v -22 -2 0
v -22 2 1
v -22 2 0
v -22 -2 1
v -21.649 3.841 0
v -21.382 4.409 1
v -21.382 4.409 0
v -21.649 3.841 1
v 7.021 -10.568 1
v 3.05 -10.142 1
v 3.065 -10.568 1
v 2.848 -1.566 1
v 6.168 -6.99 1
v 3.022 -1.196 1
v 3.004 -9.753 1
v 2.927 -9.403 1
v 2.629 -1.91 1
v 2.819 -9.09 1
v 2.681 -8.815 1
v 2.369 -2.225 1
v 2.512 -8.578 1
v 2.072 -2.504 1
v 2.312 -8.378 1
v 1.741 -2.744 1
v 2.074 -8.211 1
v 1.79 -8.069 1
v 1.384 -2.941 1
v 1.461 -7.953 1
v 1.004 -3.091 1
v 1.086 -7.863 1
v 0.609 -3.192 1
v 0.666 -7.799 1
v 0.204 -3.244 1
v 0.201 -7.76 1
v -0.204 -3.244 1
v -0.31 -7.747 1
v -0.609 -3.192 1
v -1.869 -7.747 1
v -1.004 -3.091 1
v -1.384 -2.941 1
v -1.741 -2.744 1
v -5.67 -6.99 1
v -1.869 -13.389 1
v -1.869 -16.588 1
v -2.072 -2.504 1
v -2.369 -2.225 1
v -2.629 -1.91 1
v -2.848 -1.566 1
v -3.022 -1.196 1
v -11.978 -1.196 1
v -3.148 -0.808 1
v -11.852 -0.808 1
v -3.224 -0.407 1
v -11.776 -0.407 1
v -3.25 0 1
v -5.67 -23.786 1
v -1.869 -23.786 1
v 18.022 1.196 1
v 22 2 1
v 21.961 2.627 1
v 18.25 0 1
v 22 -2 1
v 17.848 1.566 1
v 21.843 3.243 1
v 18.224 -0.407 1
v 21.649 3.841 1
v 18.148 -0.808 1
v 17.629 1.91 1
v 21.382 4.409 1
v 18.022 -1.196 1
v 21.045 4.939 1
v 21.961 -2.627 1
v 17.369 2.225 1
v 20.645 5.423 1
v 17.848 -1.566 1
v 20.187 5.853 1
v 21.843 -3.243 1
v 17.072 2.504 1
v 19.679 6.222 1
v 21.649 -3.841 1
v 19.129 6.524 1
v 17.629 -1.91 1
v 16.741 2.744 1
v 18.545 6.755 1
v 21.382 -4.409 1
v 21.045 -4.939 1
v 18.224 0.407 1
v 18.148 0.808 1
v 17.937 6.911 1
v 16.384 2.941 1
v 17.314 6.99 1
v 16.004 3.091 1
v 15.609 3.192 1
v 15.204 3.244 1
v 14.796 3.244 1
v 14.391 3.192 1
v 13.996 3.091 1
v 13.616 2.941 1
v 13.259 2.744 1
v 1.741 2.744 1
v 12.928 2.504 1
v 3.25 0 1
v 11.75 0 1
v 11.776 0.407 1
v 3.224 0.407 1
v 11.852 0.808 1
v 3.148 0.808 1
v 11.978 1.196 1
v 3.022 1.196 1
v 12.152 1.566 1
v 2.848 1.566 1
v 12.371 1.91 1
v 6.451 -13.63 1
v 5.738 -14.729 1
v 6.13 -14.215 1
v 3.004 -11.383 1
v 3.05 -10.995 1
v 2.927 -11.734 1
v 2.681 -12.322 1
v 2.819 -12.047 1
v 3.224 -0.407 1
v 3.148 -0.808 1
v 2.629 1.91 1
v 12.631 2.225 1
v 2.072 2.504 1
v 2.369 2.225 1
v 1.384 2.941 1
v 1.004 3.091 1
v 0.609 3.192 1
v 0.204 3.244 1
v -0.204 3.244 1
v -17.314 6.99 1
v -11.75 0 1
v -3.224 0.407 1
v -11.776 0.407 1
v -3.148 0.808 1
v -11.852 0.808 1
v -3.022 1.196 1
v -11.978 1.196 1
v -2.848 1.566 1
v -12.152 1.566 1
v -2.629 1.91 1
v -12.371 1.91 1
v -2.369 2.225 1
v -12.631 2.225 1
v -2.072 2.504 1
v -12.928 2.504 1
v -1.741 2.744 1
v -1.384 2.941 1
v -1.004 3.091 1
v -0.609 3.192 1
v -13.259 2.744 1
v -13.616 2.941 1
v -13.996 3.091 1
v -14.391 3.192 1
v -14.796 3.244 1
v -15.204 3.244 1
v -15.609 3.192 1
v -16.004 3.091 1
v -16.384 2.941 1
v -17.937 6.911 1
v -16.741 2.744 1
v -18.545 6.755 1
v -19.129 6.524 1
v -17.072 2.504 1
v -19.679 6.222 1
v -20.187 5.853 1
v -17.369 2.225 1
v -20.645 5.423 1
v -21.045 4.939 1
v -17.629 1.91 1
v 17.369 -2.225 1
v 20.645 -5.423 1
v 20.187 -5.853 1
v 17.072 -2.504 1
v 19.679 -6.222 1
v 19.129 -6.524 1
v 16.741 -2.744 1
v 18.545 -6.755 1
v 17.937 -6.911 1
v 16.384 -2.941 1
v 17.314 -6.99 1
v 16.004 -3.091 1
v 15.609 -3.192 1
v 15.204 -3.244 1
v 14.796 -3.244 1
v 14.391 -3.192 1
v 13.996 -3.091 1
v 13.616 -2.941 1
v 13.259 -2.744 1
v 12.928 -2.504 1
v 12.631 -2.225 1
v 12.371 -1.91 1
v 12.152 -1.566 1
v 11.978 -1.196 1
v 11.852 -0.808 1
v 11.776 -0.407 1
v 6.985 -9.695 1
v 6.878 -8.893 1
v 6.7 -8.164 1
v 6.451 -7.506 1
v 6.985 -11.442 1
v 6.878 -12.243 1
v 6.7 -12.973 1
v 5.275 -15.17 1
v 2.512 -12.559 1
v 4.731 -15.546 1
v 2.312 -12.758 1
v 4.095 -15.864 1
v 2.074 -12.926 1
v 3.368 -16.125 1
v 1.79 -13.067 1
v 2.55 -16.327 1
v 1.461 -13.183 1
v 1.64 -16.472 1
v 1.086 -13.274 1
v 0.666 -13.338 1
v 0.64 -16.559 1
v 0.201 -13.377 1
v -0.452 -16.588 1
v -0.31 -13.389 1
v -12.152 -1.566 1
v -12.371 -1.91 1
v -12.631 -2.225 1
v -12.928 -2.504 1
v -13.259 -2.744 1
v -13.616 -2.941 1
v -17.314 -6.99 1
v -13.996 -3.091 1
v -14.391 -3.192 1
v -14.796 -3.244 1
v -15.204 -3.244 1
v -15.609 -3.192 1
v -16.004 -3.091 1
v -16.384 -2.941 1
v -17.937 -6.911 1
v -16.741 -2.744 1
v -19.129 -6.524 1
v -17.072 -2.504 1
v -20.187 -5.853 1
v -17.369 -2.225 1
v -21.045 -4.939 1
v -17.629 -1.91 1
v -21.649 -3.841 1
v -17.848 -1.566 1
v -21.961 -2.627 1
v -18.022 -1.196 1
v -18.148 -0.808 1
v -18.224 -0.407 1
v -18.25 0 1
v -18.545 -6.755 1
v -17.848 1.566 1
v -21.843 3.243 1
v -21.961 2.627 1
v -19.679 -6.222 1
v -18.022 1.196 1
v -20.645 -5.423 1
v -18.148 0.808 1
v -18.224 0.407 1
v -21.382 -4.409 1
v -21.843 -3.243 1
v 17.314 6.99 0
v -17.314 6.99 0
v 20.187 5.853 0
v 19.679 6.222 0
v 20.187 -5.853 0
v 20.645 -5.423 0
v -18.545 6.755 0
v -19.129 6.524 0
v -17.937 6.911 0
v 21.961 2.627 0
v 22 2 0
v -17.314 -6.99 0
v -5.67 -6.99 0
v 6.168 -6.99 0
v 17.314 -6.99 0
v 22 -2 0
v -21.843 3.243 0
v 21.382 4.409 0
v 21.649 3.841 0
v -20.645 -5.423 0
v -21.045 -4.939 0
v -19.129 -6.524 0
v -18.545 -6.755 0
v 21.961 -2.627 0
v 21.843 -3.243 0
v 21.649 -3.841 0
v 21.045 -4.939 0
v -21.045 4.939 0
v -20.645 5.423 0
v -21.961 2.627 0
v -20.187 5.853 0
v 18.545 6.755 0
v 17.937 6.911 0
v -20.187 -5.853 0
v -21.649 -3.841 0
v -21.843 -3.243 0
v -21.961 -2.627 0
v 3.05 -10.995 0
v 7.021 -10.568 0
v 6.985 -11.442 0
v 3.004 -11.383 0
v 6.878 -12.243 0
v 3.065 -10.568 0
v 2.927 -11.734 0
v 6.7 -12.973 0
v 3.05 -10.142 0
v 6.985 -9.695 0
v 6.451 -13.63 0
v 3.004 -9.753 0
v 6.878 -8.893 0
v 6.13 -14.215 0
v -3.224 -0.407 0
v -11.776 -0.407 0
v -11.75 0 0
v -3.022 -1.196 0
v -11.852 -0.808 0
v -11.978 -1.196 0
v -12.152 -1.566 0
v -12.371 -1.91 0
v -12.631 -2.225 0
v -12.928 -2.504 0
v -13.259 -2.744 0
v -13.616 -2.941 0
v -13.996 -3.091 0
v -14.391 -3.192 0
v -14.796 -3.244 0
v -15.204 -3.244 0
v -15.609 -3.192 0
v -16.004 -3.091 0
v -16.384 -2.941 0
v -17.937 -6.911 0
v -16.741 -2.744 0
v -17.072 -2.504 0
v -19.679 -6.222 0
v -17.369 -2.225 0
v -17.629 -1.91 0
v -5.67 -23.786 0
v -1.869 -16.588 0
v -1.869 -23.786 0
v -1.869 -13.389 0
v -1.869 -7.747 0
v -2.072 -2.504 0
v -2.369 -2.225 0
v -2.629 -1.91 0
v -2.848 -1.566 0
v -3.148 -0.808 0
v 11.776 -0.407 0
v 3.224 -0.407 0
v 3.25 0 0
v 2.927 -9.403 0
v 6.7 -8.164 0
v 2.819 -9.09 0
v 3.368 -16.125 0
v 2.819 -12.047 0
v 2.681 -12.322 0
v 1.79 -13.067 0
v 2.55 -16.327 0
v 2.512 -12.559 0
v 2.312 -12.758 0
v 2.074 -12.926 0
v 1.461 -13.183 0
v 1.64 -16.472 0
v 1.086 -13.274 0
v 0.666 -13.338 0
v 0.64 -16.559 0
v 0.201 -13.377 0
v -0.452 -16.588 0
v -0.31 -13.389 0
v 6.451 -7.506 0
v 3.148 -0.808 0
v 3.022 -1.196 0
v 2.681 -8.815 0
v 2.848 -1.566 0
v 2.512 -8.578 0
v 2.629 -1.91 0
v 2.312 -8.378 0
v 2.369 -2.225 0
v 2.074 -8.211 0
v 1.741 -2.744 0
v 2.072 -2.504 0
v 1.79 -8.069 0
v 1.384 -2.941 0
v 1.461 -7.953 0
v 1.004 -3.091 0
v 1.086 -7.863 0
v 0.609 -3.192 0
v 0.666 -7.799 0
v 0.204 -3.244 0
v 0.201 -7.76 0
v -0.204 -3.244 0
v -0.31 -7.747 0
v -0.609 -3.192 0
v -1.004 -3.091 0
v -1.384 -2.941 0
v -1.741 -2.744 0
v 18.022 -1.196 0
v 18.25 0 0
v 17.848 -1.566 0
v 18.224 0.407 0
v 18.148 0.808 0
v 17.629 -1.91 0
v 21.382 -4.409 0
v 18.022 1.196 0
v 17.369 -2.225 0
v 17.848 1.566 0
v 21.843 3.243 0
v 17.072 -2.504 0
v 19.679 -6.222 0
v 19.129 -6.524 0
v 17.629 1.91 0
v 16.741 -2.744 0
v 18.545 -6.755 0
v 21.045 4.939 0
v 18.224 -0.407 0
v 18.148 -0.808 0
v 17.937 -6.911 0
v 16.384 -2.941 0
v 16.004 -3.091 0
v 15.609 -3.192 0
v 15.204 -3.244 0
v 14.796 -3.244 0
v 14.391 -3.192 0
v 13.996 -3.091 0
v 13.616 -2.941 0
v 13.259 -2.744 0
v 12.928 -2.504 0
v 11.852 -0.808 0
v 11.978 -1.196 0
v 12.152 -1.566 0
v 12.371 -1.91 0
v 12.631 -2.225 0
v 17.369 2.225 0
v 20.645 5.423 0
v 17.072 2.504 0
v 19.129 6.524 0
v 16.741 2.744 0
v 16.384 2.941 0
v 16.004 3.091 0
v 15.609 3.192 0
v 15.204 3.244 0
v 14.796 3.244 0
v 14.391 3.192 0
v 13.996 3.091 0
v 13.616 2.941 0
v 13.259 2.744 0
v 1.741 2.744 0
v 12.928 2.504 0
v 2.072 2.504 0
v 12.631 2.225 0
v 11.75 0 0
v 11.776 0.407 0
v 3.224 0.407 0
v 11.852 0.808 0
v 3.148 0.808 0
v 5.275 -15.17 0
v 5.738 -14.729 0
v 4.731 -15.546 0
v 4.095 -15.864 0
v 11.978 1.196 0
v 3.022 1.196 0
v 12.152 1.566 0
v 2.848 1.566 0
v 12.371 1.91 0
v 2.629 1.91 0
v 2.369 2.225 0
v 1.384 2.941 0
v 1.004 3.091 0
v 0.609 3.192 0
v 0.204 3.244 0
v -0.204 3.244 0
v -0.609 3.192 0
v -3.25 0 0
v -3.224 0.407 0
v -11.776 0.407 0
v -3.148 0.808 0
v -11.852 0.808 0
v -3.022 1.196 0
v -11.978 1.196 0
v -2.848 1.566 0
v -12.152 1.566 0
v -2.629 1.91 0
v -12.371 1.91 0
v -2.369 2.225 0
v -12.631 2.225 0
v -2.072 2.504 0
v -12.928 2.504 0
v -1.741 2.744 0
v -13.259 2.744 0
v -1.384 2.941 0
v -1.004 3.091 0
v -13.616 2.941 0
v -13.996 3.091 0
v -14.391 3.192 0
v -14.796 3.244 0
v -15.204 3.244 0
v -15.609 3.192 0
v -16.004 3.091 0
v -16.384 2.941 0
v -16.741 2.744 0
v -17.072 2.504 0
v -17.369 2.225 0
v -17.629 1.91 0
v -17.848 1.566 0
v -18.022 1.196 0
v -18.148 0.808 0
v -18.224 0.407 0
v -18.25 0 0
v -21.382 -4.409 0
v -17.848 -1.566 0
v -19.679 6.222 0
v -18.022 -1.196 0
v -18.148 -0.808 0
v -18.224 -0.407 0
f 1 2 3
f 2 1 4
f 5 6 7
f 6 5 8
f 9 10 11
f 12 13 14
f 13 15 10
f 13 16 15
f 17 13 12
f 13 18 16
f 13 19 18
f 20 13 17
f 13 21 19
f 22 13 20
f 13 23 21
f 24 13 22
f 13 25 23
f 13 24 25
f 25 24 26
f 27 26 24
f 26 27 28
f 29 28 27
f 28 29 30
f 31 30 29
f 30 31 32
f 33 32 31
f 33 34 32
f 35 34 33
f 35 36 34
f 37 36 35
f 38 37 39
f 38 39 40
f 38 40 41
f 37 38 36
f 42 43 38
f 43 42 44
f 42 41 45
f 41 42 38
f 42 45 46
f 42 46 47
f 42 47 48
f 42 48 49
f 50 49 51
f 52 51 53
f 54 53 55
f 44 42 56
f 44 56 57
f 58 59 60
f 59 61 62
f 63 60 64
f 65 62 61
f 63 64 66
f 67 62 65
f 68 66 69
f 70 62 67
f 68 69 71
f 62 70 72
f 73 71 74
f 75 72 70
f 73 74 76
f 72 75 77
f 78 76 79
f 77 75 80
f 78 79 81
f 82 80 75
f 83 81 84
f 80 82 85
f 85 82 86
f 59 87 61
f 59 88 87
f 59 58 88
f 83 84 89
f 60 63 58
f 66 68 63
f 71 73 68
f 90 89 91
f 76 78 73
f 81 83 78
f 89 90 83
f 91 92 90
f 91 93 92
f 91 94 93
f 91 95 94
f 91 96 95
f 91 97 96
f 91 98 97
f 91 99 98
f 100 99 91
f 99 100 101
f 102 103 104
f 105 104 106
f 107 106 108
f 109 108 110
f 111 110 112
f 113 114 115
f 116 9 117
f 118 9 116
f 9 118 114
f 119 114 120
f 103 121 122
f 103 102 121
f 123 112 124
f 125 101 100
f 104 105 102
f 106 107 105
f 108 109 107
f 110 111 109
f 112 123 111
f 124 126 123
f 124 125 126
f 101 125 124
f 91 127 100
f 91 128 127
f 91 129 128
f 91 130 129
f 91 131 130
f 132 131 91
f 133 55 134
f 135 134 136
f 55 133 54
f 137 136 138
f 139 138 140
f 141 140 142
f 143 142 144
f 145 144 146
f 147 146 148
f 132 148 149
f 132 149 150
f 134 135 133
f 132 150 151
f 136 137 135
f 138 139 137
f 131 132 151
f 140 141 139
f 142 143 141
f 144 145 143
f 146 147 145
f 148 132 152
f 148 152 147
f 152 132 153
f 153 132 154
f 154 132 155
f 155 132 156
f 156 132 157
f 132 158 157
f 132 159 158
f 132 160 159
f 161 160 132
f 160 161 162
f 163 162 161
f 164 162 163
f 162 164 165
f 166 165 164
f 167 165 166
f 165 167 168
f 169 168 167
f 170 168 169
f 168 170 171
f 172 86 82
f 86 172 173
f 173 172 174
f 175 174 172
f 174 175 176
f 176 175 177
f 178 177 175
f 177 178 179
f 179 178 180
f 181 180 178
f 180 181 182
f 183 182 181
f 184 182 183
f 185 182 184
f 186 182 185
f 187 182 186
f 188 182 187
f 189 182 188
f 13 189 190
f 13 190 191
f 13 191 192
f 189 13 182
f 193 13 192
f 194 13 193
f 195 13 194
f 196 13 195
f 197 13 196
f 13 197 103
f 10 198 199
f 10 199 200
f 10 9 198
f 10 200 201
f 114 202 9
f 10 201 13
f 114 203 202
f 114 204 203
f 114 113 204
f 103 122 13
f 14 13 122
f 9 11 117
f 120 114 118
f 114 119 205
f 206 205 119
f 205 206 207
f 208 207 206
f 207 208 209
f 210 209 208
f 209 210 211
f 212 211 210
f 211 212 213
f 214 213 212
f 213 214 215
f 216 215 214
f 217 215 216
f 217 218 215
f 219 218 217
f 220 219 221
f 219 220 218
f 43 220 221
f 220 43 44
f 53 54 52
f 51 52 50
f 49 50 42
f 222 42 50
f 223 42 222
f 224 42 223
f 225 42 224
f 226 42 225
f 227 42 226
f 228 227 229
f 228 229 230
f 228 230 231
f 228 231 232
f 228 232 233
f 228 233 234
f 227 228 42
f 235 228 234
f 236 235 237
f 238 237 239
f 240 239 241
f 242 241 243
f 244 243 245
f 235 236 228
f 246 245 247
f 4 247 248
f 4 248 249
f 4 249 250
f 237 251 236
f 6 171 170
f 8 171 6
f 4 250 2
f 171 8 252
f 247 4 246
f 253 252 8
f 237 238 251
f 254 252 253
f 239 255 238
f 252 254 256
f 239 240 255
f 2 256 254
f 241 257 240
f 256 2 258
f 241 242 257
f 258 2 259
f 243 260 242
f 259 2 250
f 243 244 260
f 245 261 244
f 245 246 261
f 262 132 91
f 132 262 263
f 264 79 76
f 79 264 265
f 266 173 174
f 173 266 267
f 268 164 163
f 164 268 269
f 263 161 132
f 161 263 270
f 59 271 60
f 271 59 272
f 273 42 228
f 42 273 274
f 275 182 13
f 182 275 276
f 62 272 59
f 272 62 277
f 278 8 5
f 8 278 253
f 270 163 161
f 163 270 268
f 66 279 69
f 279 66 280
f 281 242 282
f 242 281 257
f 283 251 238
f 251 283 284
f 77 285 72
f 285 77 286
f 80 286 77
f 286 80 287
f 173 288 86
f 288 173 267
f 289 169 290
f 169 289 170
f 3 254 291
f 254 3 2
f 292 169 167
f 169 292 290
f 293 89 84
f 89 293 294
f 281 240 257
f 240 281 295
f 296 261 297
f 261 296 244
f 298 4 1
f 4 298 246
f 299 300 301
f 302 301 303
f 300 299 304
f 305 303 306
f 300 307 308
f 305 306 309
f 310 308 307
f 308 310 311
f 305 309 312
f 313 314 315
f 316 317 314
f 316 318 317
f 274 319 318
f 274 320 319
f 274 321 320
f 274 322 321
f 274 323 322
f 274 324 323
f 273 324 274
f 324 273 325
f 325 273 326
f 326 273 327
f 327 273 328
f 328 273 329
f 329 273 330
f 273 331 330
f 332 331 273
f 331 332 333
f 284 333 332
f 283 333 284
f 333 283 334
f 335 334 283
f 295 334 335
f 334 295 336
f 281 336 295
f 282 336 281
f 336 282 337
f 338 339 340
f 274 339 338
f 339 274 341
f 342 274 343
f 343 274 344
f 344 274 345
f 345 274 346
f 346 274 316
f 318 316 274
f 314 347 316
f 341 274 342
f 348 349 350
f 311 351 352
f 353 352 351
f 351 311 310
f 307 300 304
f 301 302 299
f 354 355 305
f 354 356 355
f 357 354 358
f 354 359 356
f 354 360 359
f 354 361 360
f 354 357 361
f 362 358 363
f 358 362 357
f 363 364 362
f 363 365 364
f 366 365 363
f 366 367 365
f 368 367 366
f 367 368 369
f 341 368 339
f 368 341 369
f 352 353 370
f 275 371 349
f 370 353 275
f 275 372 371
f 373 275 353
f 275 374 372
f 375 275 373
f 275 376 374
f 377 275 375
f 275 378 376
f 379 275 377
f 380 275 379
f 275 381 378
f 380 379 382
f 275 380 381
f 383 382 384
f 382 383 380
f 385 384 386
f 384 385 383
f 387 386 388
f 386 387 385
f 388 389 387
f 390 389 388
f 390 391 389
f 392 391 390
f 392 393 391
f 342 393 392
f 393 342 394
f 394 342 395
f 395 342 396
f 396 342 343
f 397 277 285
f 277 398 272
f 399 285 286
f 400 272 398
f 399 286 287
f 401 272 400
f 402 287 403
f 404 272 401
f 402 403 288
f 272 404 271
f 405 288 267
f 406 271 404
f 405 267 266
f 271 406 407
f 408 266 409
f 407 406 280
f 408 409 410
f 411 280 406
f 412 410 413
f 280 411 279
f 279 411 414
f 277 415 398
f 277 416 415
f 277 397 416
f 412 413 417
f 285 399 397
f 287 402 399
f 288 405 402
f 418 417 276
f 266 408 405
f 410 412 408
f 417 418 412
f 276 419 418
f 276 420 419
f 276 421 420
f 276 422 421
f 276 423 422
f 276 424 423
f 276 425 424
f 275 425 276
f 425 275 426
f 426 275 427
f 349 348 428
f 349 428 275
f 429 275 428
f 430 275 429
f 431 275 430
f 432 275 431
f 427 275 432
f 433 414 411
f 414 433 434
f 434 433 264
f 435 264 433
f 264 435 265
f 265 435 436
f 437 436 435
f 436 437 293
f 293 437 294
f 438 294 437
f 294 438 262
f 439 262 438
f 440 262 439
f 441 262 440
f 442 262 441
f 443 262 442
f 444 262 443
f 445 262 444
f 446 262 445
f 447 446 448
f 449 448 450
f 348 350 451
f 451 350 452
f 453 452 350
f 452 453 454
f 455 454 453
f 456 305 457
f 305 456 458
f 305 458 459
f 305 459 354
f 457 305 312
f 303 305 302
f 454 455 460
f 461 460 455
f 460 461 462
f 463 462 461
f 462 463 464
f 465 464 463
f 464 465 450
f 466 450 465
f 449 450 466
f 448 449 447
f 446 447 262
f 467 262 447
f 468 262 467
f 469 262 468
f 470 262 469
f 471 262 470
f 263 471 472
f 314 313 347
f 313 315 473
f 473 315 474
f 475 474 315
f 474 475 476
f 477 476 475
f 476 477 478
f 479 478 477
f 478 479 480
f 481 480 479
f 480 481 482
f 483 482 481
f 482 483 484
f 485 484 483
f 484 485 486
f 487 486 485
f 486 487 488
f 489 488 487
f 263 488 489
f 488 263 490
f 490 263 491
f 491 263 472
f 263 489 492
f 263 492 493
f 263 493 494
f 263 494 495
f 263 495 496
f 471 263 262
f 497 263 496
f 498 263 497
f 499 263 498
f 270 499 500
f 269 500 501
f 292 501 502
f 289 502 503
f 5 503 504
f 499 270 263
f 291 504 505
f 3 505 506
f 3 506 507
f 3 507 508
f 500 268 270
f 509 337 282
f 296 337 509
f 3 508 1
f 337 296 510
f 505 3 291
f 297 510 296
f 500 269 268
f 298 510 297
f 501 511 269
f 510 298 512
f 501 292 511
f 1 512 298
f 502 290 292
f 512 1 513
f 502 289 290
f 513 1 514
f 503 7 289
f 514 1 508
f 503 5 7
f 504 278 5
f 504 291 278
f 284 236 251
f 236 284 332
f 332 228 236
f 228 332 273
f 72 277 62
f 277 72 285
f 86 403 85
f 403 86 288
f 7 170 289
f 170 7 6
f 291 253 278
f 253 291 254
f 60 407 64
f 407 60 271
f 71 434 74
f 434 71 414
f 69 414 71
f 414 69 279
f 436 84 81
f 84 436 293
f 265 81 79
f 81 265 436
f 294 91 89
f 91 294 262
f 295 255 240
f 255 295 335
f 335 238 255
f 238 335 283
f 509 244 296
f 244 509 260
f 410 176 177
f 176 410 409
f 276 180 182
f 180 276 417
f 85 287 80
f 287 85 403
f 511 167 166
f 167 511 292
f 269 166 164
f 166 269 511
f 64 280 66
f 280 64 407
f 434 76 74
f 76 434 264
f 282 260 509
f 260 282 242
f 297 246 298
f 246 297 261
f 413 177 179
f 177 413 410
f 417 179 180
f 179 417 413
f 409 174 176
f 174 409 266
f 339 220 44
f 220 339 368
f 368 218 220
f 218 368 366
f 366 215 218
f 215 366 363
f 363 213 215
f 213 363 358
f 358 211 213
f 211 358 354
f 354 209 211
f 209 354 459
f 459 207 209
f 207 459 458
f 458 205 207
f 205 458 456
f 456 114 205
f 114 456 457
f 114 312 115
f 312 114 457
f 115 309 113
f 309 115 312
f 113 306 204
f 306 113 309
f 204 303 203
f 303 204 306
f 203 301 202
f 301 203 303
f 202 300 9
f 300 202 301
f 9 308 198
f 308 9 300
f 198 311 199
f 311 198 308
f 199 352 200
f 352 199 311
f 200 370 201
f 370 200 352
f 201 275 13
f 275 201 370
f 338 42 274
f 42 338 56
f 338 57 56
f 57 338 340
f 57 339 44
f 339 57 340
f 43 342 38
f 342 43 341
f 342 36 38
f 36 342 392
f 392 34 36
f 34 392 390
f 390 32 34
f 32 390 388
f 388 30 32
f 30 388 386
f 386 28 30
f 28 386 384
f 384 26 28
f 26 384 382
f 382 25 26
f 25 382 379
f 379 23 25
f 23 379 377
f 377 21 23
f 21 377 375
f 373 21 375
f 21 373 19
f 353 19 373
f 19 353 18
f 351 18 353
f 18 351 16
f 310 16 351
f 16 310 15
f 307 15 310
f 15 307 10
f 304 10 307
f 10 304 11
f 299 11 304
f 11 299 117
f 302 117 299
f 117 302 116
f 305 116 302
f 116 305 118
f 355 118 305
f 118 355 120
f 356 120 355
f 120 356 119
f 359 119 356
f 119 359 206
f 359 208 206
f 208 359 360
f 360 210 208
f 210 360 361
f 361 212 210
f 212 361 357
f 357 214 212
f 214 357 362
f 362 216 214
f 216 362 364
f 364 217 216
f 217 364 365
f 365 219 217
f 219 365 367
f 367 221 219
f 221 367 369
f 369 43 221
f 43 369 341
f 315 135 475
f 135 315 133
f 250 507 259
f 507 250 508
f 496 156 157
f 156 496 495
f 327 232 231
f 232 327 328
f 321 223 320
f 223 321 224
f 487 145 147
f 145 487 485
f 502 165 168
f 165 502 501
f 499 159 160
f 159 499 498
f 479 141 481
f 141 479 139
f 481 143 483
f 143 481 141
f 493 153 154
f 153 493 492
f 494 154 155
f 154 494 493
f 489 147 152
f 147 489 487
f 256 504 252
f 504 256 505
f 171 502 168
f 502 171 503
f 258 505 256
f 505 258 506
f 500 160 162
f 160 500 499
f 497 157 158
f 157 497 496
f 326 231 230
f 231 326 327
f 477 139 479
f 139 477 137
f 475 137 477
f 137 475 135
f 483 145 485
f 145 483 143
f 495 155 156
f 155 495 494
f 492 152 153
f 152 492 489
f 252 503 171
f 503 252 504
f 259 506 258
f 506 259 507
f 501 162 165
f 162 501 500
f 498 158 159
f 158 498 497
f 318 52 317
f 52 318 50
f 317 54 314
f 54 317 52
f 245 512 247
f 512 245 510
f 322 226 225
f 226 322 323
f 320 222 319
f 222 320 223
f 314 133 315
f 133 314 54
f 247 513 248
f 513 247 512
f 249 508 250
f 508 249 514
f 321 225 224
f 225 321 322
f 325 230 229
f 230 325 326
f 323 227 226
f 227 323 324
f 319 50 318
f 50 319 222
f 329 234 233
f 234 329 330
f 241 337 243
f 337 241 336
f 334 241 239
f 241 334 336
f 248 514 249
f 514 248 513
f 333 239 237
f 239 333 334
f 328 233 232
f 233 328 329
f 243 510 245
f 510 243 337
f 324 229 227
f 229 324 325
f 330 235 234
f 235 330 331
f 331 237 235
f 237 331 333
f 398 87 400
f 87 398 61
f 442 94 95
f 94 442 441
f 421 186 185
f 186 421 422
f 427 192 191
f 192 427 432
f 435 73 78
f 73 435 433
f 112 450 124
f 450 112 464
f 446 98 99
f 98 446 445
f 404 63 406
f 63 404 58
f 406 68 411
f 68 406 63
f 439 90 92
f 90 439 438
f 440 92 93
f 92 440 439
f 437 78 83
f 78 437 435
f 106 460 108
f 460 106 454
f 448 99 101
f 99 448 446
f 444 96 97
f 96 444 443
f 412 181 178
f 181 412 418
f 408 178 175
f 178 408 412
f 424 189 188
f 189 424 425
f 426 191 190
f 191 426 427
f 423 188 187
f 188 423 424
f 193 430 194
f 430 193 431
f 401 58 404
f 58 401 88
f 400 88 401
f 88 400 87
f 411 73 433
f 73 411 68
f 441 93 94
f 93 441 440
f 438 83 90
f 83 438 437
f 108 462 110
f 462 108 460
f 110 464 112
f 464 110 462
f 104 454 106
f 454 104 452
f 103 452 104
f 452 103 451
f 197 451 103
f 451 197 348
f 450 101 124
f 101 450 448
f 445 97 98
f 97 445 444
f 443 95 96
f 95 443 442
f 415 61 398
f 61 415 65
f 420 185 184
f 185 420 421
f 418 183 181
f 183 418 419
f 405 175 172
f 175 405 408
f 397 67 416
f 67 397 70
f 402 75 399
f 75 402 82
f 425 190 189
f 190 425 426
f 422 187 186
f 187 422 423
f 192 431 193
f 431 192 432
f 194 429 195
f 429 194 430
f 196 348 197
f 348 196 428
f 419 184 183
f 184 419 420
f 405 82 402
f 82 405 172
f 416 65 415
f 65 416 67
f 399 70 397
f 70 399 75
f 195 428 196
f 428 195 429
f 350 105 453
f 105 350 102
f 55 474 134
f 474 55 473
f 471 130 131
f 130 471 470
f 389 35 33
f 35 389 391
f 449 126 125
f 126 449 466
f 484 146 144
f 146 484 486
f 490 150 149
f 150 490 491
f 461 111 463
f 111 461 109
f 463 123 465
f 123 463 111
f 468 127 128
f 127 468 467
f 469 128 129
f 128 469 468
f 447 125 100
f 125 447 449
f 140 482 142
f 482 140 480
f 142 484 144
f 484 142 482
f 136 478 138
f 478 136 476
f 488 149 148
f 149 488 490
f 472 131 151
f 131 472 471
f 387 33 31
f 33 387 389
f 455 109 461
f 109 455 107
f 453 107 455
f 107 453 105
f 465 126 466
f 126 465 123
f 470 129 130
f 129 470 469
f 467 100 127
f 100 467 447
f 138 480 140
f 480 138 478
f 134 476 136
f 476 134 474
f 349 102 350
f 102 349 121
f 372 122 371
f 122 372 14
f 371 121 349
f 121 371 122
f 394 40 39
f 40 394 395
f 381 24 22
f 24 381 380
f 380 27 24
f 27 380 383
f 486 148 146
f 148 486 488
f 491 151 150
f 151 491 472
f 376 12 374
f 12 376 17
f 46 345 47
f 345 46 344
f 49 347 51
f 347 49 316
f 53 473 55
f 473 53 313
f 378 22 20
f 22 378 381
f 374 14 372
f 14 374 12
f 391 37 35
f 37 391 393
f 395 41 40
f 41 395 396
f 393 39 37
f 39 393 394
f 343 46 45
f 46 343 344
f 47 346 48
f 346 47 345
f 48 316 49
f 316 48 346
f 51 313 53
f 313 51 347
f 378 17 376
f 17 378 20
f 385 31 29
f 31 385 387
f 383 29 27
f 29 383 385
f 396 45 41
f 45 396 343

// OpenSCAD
$fn = 50;


difference() {
	union() {
		translate(v = [0, 0, 0]) {
			rotate(a = [0, 0, 0]) {
				hull() {
					translate(v = [-17.0000000000, 2.0000000000, 0]) {
						rotate(a = [0, 0, 0]) {
							translate(v = [0, 0, 0]) {
								rotate(a = [0, 0, 0]) {
									cylinder(h = 1, r = 5);
								}
							}
						}
					}
					translate(v = [17.0000000000, 2.0000000000, 0]) {
						rotate(a = [0, 0, 0]) {
							translate(v = [0, 0, 0]) {
								rotate(a = [0, 0, 0]) {
									cylinder(h = 1, r = 5);
								}
							}
						}
					}
					translate(v = [-17.0000000000, -2.0000000000, 0]) {
						rotate(a = [0, 0, 0]) {
							translate(v = [0, 0, 0]) {
								rotate(a = [0, 0, 0]) {
									cylinder(h = 1, r = 5);
								}
							}
						}
					}
					translate(v = [17.0000000000, -2.0000000000, 0]) {
						rotate(a = [0, 0, 0]) {
							translate(v = [0, 0, 0]) {
								rotate(a = [0, 0, 0]) {
									cylinder(h = 1, r = 5);
								}
							}
						}
					}
				}
			}
		}
		translate(v = [0, -5, 0]) {
			rotate(a = [0, 0, 0]) {
				linear_extrude(height = 1) {
					text(font = "DejaVu Sans Mono:style=Bold", halign = "center", size = 19.0000000000, text = "P", valign = "top");
				}
			}
		}
	}
	union() {
		translate(v = [-15.0000000000, 0.0000000000, -125.0000000000]) {
			rotate(a = [0, 0, 0]) {
				cylinder(h = 250, r = 3.2500000000);
			}
		}
		translate(v = [15.0000000000, 0.0000000000, -125.0000000000]) {
			rotate(a = [0, 0, 0]) {
				cylinder(h = 250, r = 3.2500000000);
			}
		}
		translate(v = [15.0000000000, 0.0000000000, -125.0000000000]) {
			rotate(a = [0, 0, 0]) {
				cylinder(h = 250, r = 3.2500000000);
			}
		}
		translate(v = [0, 0, -125.0000000000]) {
			rotate(a = [0, 0, 0]) {
				cylinder(h = 250, r = 3.2500000000);
			}
		}
	}
}
